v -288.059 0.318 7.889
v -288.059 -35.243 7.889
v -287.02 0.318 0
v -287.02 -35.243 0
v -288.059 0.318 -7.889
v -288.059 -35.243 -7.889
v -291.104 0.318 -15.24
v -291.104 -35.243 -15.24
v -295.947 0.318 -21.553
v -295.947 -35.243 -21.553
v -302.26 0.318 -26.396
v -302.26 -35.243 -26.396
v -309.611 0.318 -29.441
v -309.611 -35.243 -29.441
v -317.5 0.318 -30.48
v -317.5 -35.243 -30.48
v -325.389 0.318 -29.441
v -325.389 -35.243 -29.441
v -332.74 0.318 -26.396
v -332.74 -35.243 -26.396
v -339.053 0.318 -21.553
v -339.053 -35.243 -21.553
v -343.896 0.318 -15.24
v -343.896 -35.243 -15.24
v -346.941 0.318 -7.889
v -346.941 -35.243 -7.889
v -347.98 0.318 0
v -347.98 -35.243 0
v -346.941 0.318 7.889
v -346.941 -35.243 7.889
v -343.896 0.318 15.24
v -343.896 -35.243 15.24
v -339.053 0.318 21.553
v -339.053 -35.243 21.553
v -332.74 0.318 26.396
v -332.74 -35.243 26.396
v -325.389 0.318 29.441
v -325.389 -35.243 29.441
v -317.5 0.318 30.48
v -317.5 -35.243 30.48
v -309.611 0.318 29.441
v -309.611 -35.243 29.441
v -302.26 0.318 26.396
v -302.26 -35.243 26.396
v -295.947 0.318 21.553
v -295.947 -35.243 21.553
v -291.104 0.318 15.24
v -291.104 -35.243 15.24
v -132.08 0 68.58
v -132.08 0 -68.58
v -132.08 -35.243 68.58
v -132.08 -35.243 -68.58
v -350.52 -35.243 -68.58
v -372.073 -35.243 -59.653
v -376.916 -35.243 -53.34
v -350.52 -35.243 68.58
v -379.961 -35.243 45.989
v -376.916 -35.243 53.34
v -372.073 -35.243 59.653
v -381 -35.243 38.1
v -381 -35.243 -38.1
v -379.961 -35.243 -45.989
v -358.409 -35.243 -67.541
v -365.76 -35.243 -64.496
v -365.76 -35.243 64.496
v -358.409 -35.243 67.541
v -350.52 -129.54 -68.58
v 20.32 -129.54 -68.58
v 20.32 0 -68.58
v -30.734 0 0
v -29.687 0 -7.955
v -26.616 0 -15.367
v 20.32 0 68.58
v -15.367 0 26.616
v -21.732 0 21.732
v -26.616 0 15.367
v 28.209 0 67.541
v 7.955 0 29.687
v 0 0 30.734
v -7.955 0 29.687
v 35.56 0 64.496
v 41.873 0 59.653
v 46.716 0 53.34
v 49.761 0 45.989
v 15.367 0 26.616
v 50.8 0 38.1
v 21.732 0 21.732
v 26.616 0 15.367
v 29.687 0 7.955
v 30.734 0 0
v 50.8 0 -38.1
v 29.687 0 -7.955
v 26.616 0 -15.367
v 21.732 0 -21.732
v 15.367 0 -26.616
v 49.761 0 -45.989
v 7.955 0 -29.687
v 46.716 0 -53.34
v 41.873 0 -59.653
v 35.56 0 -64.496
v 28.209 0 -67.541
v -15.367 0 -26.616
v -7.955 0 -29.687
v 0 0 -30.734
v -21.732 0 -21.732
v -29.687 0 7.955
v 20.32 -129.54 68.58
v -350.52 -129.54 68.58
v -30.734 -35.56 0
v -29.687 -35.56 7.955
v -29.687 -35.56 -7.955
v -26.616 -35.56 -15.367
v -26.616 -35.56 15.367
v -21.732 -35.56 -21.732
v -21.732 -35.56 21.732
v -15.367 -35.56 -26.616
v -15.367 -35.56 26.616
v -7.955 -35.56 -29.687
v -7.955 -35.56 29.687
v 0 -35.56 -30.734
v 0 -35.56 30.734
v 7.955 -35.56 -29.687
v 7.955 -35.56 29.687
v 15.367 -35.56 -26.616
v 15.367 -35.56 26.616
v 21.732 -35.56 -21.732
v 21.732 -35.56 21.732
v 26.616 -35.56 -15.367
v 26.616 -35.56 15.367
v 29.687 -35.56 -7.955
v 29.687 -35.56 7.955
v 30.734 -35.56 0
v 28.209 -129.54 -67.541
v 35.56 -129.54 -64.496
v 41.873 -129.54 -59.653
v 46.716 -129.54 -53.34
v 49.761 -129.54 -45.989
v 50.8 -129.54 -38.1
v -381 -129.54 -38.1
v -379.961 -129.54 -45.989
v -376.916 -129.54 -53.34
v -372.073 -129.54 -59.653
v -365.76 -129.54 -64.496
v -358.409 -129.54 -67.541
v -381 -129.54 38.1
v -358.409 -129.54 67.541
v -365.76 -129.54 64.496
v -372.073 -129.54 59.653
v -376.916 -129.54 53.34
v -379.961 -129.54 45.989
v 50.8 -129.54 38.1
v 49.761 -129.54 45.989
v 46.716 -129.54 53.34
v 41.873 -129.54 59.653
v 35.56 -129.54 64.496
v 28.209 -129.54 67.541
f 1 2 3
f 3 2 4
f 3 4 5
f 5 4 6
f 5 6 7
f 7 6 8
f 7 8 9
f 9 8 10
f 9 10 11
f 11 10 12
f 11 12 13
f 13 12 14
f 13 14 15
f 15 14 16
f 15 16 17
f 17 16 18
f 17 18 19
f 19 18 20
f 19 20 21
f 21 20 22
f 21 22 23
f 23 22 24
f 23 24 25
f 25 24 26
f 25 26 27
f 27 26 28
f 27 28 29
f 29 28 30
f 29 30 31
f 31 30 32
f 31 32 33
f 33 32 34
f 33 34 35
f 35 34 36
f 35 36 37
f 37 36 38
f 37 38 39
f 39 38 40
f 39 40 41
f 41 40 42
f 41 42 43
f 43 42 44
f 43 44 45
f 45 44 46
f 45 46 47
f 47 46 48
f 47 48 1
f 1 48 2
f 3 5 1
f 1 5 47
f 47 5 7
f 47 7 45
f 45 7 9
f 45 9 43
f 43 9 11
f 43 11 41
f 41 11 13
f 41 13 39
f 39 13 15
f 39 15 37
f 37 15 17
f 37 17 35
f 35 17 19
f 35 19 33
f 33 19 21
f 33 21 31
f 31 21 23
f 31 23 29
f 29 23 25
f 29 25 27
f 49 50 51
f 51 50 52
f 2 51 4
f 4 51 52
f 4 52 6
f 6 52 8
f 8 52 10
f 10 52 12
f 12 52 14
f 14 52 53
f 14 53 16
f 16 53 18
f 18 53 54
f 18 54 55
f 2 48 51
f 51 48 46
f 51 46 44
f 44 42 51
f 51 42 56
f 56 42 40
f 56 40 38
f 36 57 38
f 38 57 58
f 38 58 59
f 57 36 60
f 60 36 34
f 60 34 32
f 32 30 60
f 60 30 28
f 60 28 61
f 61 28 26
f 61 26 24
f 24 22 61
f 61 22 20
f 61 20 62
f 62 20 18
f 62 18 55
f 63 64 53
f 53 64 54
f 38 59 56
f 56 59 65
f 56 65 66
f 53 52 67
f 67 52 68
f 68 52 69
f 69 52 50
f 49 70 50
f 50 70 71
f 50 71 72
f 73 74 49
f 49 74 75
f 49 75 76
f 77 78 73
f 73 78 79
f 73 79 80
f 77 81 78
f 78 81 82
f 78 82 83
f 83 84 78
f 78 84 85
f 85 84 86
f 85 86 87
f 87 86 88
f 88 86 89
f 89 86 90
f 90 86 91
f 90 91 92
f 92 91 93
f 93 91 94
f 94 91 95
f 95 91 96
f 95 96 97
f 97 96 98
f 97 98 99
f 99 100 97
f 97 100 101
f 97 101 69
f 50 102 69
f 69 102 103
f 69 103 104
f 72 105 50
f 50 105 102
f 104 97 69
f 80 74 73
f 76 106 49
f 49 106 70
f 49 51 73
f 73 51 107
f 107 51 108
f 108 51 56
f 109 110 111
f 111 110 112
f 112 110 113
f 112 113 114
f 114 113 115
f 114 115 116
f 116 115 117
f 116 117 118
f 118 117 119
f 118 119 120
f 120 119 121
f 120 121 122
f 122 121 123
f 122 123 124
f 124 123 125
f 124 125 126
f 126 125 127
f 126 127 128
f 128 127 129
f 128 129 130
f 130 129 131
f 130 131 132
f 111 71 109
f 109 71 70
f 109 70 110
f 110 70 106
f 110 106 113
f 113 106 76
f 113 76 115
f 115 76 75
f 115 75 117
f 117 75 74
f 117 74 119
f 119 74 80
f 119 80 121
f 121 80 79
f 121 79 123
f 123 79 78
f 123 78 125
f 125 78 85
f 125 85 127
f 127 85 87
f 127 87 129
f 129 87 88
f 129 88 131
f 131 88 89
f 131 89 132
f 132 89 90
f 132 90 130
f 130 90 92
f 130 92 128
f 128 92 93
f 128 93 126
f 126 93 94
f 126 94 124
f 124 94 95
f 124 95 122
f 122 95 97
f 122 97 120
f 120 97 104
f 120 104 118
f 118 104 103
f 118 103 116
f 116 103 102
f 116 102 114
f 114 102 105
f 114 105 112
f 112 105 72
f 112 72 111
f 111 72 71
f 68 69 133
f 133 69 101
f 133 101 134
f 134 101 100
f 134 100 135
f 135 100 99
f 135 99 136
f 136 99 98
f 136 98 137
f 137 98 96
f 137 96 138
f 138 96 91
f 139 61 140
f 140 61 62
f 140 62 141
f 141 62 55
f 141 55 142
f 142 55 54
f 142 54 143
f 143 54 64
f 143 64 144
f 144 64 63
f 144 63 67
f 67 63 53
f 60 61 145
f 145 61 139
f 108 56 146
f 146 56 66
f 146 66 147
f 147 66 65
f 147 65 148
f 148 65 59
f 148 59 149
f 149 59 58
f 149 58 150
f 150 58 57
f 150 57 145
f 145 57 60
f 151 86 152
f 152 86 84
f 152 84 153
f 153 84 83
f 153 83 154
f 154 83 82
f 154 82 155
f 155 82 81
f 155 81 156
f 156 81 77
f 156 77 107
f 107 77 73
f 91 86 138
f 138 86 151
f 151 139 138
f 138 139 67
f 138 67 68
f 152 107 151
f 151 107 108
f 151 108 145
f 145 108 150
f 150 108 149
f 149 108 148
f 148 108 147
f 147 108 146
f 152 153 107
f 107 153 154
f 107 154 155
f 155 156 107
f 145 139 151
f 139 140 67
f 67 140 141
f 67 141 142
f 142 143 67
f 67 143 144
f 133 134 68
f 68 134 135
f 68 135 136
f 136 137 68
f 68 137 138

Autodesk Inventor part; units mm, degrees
ref_plane "YZ Plane" through (0, 0, 0) normal (1, 0, 0) x (0, 1, 0)
ref_plane "XZ Plane" through (0, 0, 0) normal (0, 1, 0) x (-1, 0, 0)
ref_plane "XY Plane" through (0, 0, 0) normal (0, 0, 1) x (1, 0, 0)
sketch "Sketch1" plane through (0, 0, 0) normal (0, 1, 0) x (-1, 0, 0)
  circle A0 centre (0, 0) radius 30.734
  line L0 (-20.32, 68.58) -> (350.52, 68.58)
  line L1 (381, 38.1) -> (381, -38.1)
  line L2 (350.52, -68.58) -> (-20.32, -68.58)
  line L3 (-50.8, -38.1) -> (-50.8, 38.1)
  arc A1 (-20.32, 68.58) -> (-50.8, 38.1) centre (-20.32, 38.1) ccw
  arc A2 (-50.8, -38.1) -> (-20.32, -68.58) centre (-20.32, -38.1) ccw
  arc A3 (381, 38.1) -> (350.52, 68.58) centre (350.52, 38.1) ccw
  arc A4 (350.52, -68.58) -> (381, -38.1) centre (350.52, -38.1) ccw
  point P0 (-50.8, 68.58)
  point P1 (381, -68.58)
  point P2 (-50.8, -68.58)
  dimension "d0" = 61.468
  dimension "d1" = 137.16
  dimension "d2" = 431.8
  dimension "d3" = 50.8
  dimension "d4" = 68.58
  dimension "d5" = 30.48
extrude "Extrusion1" add sketch "Sketch1" against normal blind 129.54
sketch "Sketch2" plane through (0, -129.54, 0) normal (0, -1, 0) x (1, 0, 0)
  circle A0 centre (0, 0) radius 38.1
  dimension "d17" = 76.2
extrude "Extrusion2" add sketch "Sketch2" against normal blind 93.98
sketch "Sketch3" plane through (0, 0, 0) normal (0, 1, 0) x (1, 0, 0)
  line L0 (50.8, 38.1) -> (50.8, -38.1) projected
  line L1 (50.8, 0) -> (-132.08, 0)
  line L2 (20.32, -68.58) -> (-350.52, -68.58) projected
  line L3 (-132.08, -68.58) -> (-434.975, -68.58)
  line L4 (-434.975, -68.58) -> (-434.975, 68.58)
  line L5 (-434.975, 68.58) -> (-132.08, 68.58)
  line L6 (-132.08, 68.58) -> (-132.08, -68.58)
  point P0 (0, 0)
  dimension "d10" = 182.88
extrude "Extrusion3" cut sketch "Sketch3" against normal blind 35.2425
sketch "Sketch4" plane through (0, -35.2425, 0) normal (0, 1, 0) x (1, 0, 0)
  line L0 (-381, -38.1) -> (-381, 38.1) projected
  line L1 (-381, 0) -> (-328.6125, 0)
  line L2 (-381, 0) -> (-317.5, 0)
  circle A0 centre (-317.5, 0) radius 30.48
  point P0 (0, 0)
  dimension "d14" = 60.96
  dimension "d18" = 317.5
extrude "Extrusion4" add sketch "Sketch4" along normal blind 35.56
equation "\"d4\" = 0.5 * d1"
properties part number "Shoulder2 Link"
